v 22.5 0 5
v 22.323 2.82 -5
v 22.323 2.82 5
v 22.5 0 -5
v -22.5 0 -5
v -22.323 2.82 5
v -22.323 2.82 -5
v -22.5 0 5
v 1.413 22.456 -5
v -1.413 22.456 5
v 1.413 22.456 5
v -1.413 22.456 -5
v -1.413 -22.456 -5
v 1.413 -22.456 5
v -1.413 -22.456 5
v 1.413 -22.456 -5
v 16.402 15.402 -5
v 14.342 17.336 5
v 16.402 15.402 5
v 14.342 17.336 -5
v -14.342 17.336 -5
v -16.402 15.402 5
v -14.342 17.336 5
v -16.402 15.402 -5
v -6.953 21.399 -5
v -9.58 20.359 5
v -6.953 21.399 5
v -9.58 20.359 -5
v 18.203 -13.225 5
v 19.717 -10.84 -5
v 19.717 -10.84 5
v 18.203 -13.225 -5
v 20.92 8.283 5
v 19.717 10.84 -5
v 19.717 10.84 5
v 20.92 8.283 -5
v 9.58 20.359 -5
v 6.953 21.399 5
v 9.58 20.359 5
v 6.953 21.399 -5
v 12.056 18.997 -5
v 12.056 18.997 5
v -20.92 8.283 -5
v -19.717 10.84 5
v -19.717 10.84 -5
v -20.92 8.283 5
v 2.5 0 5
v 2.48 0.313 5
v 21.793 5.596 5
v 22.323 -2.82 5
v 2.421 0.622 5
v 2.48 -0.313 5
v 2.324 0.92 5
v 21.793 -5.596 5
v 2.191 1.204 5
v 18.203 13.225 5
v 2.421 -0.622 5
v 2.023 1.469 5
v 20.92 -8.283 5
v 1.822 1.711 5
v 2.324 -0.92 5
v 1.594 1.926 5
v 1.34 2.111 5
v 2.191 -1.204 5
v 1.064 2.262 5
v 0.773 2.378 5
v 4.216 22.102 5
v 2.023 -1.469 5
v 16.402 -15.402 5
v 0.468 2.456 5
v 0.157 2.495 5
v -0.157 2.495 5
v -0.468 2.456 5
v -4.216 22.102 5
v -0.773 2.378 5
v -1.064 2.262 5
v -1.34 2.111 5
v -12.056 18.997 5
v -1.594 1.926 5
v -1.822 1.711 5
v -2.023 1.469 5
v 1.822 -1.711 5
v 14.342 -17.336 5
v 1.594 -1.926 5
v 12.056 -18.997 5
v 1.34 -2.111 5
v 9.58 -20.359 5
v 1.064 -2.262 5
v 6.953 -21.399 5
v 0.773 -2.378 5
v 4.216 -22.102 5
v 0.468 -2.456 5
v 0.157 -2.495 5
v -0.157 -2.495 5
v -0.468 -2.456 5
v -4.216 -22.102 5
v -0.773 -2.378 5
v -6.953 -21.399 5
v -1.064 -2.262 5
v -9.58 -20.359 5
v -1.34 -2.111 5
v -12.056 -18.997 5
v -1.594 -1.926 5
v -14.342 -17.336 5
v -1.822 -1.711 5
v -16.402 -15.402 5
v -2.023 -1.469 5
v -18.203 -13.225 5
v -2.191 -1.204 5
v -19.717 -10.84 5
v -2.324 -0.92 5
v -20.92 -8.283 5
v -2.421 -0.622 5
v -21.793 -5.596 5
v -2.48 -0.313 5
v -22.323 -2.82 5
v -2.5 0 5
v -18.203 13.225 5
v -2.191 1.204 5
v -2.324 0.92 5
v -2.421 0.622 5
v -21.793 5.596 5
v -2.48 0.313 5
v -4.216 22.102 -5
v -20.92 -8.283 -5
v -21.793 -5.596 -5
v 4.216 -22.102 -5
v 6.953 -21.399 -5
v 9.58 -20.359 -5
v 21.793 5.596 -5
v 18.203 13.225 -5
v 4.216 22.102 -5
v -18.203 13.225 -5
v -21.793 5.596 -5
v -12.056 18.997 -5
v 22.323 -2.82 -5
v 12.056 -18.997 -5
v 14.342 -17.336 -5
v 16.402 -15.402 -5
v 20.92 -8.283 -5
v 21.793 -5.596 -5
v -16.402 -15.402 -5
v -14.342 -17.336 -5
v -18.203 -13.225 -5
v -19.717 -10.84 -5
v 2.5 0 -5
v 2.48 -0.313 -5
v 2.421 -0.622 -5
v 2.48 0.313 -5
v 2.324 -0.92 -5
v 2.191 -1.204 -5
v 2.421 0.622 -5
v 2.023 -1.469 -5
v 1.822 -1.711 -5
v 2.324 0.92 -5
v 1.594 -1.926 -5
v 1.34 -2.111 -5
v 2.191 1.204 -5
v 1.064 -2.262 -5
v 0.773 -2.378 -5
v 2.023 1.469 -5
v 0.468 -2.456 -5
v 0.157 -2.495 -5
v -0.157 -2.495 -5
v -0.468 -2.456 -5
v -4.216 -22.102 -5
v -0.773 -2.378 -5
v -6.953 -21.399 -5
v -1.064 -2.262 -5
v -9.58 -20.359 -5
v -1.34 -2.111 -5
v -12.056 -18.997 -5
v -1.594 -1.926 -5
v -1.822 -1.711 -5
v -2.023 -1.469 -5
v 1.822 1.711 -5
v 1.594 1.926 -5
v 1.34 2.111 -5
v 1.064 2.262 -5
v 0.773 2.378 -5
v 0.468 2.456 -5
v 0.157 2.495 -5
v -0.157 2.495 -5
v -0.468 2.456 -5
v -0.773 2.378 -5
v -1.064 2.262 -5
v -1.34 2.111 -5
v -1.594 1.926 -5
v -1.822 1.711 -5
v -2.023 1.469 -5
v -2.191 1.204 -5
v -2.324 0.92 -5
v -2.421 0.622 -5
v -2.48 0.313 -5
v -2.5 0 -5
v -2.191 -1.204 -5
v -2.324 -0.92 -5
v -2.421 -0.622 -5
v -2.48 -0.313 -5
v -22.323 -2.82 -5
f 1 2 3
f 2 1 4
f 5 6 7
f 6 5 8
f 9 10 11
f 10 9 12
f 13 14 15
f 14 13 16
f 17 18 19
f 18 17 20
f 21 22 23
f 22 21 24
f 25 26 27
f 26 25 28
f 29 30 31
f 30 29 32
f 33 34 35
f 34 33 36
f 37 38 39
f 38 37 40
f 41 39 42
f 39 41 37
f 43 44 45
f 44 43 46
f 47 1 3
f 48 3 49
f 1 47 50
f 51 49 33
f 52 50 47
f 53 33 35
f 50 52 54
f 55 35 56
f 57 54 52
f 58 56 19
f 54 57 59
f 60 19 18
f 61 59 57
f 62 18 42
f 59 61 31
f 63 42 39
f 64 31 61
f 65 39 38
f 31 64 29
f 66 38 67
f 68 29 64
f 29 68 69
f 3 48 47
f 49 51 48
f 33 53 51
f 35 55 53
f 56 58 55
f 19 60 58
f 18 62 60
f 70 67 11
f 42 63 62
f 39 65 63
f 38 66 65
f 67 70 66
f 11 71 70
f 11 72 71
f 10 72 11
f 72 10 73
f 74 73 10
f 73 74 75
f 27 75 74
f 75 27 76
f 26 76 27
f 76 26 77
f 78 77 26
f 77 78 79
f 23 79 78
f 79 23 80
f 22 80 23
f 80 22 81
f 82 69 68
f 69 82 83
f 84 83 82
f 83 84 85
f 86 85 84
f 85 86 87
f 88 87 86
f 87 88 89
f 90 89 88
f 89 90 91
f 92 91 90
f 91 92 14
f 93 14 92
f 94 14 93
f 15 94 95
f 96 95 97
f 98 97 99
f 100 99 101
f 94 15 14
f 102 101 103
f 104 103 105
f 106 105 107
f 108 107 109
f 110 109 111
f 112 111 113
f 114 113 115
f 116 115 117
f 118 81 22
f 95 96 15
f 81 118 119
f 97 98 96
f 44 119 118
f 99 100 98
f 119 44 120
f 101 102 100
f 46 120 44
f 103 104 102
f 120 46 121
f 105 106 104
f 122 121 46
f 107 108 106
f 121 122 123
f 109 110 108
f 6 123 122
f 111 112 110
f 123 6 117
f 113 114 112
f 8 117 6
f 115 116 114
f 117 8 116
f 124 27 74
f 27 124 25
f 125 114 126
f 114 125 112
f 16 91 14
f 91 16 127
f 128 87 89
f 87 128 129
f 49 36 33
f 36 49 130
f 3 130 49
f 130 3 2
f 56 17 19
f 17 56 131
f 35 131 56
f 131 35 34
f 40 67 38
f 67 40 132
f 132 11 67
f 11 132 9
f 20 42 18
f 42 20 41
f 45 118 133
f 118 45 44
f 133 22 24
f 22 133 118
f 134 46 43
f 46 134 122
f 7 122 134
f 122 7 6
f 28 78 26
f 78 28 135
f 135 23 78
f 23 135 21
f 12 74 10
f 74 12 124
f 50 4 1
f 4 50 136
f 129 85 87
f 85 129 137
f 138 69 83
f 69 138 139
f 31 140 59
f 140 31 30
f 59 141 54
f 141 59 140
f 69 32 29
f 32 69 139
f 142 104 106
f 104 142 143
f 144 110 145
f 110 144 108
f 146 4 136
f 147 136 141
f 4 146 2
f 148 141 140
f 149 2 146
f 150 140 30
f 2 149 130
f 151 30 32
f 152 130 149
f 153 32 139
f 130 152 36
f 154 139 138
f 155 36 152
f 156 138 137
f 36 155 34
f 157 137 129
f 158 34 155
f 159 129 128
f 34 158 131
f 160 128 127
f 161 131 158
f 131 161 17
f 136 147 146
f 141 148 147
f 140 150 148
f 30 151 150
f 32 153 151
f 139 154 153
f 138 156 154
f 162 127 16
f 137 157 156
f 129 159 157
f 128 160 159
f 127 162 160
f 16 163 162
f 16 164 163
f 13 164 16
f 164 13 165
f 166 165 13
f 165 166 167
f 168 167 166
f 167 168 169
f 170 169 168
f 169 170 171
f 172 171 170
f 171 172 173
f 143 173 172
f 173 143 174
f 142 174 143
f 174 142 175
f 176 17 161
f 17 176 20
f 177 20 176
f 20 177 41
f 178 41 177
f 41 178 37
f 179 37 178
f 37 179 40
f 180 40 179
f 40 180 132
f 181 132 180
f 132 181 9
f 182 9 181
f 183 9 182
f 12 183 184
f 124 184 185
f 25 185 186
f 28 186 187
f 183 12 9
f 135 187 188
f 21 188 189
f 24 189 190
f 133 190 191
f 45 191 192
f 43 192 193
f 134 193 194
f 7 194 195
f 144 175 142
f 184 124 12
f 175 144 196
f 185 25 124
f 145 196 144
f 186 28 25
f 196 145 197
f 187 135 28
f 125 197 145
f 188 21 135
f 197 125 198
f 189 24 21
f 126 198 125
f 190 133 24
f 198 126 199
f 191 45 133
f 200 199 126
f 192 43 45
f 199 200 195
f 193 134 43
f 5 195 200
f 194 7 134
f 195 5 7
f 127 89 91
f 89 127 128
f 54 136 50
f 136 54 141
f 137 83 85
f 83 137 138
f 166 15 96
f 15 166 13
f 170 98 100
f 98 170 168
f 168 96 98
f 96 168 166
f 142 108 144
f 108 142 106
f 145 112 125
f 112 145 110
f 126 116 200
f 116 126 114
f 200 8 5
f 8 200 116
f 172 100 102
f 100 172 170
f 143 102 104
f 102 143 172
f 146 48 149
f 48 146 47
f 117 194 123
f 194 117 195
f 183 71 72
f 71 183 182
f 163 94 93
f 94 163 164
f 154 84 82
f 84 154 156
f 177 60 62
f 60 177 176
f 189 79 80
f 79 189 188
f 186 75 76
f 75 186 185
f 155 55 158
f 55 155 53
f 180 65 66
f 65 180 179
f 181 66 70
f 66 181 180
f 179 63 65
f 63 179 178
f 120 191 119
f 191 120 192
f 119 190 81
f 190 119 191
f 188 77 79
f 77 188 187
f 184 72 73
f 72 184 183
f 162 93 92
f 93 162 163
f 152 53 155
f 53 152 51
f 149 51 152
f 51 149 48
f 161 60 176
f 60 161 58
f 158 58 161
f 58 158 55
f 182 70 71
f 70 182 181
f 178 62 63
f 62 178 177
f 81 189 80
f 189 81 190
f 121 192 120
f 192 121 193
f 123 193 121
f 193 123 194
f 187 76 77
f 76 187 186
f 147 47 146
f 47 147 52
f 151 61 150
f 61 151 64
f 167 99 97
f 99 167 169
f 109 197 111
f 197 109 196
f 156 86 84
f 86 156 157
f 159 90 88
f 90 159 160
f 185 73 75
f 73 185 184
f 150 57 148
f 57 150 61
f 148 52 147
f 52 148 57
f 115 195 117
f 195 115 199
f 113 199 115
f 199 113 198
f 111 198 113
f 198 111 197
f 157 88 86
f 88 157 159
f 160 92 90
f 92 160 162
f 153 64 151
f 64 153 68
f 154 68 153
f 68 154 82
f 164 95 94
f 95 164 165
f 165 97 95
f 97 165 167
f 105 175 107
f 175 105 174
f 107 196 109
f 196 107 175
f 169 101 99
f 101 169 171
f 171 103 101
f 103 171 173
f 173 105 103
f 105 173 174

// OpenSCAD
$fn = 50;


difference() {
	union() {
		translate(v = [0, 0, -5.0000000000]) {
			cylinder(h = 10, r = 22.5000000000);
		}
	}
	union() {
		translate(v = [0, 0, -100.0000000000]) {
			cylinder(h = 200, r = 2.5000000000);
		}
	}
}
